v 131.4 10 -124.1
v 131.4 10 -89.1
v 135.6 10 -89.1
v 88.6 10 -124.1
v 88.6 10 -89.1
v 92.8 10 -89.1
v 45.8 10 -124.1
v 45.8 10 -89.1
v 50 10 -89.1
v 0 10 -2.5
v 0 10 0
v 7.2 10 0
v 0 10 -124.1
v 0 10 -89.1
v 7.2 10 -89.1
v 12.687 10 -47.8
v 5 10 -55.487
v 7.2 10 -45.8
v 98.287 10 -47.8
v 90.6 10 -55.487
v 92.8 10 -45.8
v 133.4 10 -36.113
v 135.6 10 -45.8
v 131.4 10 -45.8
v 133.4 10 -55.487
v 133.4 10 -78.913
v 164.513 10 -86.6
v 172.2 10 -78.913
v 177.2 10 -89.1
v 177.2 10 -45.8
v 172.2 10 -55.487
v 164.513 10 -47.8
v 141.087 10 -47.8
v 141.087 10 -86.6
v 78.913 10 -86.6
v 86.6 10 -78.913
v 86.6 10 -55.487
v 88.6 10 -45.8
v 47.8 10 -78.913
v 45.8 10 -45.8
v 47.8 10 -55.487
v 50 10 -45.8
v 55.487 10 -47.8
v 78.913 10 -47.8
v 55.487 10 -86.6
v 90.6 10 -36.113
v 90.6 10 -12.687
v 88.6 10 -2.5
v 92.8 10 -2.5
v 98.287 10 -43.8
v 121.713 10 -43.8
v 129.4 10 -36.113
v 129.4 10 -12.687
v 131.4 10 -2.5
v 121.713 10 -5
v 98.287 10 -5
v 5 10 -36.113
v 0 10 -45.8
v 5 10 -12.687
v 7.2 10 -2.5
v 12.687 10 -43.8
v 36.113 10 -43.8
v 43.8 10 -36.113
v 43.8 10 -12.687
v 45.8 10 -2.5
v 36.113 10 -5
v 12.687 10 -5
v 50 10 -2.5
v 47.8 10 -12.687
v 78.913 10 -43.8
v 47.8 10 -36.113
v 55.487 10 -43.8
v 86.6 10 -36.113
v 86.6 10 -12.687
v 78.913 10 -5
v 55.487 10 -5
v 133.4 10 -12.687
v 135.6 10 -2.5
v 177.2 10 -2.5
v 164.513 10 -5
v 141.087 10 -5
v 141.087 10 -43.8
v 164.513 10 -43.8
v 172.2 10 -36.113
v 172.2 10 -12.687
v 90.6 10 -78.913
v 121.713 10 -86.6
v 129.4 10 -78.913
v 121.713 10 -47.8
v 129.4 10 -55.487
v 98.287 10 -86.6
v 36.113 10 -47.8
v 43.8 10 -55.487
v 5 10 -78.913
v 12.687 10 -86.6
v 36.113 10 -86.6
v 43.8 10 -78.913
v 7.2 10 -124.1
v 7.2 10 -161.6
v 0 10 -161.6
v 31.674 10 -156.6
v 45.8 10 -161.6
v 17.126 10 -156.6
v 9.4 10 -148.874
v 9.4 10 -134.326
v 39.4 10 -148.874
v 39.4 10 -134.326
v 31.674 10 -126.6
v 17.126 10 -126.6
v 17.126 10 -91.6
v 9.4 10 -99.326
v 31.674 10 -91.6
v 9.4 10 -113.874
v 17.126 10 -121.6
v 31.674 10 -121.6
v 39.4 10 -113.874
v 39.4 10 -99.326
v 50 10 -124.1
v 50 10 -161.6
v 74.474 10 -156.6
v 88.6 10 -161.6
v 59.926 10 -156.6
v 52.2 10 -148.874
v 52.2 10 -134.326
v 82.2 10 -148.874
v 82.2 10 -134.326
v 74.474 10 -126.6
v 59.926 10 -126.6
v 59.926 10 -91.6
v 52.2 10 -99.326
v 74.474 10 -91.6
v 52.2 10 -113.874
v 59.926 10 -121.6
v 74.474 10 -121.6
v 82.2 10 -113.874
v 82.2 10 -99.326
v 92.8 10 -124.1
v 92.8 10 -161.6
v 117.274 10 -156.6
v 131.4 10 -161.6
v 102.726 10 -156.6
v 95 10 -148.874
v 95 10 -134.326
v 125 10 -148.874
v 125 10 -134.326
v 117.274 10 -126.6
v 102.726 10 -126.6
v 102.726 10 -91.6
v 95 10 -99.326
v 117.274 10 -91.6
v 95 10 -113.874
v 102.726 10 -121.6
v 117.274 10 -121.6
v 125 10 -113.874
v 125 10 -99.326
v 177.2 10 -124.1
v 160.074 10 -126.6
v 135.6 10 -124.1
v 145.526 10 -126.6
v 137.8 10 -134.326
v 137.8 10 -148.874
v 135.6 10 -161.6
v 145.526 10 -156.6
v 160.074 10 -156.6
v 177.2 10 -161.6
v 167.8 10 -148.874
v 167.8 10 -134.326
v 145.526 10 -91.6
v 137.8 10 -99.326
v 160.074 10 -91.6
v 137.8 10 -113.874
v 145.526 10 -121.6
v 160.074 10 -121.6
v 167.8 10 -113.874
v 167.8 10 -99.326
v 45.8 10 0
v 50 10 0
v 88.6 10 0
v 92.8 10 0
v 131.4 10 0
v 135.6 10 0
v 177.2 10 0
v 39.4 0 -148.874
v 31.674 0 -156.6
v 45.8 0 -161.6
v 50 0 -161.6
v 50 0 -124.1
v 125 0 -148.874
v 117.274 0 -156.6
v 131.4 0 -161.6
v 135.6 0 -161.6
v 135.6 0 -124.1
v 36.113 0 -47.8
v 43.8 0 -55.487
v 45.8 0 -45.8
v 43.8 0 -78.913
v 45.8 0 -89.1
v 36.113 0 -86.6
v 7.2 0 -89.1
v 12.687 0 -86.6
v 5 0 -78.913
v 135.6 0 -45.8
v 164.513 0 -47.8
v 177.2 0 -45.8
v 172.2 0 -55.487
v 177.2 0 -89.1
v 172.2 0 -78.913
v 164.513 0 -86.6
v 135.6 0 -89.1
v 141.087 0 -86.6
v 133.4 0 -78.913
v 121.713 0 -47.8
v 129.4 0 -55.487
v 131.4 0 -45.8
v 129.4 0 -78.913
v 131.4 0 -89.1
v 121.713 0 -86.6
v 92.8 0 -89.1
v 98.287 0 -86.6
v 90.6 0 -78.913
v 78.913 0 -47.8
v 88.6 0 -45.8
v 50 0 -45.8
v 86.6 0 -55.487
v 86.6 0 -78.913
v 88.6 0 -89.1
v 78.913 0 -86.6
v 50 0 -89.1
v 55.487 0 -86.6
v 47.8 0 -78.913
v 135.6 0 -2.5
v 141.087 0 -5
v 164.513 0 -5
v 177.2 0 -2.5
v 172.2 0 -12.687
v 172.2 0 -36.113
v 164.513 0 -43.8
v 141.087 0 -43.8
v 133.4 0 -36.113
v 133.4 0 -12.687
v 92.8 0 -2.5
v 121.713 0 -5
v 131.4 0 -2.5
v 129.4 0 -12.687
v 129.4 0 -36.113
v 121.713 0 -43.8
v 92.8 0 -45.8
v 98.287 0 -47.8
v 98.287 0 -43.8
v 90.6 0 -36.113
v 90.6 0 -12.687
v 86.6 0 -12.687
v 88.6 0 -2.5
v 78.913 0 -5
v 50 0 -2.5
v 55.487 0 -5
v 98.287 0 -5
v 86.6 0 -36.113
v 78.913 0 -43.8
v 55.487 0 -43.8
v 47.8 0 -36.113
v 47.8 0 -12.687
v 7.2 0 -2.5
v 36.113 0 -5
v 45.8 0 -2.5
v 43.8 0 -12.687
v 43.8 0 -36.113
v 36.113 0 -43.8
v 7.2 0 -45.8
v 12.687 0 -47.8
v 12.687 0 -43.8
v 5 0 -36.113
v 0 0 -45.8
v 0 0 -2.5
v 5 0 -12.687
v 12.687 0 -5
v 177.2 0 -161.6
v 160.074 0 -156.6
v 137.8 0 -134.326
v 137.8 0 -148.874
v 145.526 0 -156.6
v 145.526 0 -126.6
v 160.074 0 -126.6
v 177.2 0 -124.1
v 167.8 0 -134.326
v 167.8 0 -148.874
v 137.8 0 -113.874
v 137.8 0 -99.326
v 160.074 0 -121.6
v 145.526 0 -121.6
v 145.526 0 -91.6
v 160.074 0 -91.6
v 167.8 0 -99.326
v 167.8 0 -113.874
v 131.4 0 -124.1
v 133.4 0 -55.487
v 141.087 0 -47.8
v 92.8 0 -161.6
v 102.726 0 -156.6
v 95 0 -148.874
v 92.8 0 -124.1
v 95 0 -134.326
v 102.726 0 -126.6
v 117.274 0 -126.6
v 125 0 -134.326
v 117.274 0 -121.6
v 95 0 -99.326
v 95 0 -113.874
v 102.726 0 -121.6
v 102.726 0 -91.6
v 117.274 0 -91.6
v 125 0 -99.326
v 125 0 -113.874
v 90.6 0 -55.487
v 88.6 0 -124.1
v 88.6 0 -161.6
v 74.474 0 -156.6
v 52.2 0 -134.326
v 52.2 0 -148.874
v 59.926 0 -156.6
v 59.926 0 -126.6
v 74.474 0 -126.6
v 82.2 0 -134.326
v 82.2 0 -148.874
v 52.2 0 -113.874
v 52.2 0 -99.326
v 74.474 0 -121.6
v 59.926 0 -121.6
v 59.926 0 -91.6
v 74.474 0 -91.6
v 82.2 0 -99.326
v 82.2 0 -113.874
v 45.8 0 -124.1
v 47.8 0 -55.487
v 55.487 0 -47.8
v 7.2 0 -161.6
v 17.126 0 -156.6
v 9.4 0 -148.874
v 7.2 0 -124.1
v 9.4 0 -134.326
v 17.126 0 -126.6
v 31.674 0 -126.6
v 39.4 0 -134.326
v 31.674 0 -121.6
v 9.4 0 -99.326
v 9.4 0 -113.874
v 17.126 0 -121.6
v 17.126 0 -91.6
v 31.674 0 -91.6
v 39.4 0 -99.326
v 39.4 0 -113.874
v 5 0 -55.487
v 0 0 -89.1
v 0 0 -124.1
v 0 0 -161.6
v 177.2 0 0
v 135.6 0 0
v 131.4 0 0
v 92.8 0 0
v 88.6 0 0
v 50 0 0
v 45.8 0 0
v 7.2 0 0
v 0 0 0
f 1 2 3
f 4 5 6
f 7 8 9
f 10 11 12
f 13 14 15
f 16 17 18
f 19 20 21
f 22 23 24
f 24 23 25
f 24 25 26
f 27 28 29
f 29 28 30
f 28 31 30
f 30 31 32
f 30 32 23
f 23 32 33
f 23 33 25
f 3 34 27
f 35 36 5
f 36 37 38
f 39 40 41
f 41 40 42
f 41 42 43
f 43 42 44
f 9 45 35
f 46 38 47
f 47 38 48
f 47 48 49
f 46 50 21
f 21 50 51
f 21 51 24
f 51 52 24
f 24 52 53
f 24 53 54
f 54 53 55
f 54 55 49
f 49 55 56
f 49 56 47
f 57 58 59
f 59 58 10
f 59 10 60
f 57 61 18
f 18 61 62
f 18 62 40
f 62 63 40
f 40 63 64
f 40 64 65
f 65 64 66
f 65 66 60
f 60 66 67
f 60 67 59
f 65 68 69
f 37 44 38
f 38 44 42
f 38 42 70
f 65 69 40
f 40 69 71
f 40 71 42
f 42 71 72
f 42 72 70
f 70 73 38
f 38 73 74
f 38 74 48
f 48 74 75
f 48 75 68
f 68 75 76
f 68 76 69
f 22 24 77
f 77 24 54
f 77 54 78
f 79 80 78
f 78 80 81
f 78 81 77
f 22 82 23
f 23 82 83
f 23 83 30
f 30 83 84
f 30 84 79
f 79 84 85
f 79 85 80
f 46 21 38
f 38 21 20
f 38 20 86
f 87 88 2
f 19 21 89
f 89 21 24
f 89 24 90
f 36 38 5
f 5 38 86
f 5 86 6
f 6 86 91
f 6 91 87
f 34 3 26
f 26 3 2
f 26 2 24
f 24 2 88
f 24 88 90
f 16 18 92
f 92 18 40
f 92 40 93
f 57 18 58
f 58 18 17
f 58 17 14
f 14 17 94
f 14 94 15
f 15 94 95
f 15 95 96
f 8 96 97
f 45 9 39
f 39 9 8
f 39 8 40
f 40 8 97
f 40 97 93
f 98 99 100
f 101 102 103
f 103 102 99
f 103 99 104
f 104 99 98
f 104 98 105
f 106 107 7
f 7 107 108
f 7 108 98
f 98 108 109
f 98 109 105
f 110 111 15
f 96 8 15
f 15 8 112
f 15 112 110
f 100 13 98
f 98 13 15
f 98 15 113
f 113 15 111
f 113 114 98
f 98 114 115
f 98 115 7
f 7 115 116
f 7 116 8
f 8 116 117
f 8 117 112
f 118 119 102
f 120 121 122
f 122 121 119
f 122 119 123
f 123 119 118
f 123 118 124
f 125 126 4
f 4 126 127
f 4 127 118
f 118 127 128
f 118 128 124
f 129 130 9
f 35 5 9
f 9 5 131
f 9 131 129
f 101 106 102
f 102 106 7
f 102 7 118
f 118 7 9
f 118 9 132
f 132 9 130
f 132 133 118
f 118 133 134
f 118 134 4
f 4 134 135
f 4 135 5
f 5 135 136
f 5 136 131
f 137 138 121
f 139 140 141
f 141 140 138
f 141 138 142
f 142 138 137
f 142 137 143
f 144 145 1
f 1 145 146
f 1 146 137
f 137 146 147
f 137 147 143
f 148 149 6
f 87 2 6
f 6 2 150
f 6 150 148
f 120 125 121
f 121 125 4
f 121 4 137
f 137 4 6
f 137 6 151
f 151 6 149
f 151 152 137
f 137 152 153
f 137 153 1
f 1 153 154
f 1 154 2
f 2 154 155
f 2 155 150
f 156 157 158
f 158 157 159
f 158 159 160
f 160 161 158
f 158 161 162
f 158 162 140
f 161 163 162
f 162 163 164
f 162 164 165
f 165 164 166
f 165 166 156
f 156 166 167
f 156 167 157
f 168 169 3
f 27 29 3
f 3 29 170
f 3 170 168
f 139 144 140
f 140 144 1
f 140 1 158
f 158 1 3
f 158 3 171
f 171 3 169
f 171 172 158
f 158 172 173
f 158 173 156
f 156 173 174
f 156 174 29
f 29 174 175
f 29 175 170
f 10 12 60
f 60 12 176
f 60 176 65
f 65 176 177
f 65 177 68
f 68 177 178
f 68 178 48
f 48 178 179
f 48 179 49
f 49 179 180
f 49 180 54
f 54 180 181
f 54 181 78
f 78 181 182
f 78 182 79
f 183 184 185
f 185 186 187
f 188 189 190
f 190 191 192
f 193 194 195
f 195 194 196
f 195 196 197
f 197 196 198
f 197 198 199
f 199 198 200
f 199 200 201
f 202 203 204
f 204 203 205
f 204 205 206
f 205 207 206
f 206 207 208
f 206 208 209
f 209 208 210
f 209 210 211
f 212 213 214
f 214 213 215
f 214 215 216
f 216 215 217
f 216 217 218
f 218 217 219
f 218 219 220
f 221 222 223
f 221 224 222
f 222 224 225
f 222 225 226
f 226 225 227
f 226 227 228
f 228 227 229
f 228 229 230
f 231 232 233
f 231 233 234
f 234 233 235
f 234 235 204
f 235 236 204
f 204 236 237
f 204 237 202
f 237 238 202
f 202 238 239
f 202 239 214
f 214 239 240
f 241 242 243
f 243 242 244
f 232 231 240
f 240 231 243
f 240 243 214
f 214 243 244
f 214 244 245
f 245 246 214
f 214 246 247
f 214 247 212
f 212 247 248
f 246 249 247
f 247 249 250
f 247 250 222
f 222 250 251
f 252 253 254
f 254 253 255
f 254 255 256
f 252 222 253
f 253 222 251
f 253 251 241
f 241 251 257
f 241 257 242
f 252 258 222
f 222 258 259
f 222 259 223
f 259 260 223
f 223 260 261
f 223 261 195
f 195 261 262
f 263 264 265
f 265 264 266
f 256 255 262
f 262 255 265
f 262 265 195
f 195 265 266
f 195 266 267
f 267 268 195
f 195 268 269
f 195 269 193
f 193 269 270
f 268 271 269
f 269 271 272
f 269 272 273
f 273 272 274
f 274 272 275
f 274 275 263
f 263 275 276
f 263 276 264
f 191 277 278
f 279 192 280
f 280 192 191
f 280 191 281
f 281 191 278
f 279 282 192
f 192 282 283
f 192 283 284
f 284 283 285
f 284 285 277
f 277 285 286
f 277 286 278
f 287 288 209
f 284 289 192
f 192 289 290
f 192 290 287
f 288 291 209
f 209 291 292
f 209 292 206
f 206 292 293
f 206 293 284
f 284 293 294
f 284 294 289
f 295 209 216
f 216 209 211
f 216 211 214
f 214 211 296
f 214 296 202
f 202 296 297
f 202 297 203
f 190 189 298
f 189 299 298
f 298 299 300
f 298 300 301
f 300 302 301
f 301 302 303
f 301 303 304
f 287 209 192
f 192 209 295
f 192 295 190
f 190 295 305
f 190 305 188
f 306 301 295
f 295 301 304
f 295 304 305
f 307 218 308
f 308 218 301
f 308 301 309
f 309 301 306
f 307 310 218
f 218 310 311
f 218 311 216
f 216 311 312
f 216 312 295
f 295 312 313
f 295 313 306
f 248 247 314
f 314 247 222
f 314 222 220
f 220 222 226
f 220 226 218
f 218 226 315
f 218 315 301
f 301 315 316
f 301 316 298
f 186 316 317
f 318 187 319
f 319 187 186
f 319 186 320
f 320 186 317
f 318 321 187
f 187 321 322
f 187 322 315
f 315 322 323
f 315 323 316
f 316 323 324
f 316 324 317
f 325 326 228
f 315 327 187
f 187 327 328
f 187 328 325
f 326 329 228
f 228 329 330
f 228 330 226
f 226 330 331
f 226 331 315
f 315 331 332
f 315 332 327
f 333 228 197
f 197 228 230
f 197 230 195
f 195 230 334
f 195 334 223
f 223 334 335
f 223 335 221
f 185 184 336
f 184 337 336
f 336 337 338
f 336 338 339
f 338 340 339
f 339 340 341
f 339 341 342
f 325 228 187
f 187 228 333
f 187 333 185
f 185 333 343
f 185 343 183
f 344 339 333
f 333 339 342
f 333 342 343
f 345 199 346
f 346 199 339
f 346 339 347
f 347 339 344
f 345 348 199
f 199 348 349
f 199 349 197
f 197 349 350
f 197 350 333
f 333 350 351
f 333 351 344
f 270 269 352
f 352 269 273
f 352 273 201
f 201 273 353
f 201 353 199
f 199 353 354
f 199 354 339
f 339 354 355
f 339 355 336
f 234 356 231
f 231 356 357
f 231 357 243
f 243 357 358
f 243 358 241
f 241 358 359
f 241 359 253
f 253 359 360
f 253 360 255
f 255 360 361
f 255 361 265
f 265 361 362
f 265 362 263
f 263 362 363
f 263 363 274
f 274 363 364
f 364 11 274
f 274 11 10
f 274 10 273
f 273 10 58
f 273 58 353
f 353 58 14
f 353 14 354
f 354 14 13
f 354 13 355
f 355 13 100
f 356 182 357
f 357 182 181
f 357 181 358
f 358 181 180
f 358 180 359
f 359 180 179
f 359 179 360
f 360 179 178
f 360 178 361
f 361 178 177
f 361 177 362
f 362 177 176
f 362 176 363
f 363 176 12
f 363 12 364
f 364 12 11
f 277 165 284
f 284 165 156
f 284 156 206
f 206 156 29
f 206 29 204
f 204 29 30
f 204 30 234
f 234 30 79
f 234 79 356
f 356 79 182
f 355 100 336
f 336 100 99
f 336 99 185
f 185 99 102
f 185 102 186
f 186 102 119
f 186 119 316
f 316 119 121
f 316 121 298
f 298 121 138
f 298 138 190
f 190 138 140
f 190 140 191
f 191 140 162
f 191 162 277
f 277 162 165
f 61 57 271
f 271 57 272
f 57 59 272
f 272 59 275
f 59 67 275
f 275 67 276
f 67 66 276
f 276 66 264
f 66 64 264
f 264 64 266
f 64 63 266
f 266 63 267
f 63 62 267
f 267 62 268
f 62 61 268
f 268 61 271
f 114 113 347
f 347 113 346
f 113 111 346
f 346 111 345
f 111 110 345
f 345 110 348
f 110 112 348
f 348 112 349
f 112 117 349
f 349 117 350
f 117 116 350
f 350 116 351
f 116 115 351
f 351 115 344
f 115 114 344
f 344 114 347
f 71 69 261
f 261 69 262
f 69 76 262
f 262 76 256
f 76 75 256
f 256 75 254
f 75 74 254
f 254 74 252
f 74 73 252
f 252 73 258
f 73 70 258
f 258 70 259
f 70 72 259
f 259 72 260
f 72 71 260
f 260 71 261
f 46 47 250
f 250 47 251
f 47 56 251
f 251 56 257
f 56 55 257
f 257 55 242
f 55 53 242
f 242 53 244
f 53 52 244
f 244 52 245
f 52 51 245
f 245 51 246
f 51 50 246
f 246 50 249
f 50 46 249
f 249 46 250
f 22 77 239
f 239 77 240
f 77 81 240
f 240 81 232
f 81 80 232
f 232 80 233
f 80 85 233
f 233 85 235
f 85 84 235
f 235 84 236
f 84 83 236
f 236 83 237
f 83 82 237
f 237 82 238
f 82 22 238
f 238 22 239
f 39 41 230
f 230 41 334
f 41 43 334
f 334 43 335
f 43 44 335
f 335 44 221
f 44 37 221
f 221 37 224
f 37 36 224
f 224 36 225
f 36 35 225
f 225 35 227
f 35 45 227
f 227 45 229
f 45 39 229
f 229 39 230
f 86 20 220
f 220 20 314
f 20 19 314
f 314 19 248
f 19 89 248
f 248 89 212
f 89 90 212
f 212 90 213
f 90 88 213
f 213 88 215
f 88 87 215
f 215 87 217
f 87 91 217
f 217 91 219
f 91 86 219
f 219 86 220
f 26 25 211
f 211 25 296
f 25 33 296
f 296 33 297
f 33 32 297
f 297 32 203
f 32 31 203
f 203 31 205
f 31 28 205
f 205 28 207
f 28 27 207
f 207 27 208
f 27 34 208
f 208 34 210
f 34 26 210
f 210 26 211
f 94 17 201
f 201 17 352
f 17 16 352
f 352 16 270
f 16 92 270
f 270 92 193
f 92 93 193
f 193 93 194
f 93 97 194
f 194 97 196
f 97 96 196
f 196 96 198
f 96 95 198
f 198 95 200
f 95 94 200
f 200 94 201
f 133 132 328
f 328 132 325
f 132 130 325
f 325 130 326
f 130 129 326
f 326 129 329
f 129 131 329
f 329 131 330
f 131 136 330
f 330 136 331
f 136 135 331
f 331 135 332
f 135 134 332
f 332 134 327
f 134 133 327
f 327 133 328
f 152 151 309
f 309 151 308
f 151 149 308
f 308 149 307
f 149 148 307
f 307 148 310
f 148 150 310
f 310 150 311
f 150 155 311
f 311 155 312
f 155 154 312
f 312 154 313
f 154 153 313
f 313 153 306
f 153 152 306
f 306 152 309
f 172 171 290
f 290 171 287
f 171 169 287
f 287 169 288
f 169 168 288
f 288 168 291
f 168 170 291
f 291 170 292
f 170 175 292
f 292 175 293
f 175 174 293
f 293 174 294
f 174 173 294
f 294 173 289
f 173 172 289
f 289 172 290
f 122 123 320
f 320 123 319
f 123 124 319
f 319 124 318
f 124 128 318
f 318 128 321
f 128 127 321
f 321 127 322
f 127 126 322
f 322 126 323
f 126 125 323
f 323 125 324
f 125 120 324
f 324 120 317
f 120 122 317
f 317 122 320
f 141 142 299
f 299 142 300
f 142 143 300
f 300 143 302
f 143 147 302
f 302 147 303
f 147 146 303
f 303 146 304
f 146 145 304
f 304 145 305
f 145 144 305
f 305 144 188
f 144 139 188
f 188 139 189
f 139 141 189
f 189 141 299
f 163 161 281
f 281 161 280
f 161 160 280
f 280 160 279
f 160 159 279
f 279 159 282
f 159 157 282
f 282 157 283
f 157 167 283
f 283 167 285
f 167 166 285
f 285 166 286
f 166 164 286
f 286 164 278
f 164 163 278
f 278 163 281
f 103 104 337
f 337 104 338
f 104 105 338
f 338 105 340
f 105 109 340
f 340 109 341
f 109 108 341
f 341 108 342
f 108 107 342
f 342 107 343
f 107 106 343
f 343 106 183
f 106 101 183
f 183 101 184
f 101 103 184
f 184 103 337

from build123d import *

# Parameters (mm, degrees)
SKETCH1_W           = 177.2
SKETCH1_H           = 161.6
BOSS_EXTRUDE1_DEPTH = 10


with BuildPart() as part:
    # Sketch1 → Boss-Extrude1 (new body)
    with BuildSketch(Plane(origin=(0, 0, 0), x_dir=(1, 0, 0), z_dir=(0, 1, 0))):
        with Locations((88.6, 80.8)):
            Rectangle(SKETCH1_W, SKETCH1_H)
        Polygon((5, 36.112698372), (5, 12.687301628), (12.687301628, 5), (36.112698372, 5), (43.8, 12.687301628), (43.8, 36.112698372), (36.112698372, 43.8), (12.687301628, 43.8), align=None, mode=Mode.SUBTRACT)
        Polygon((55.487301628, 43.8), (47.8, 36.112698372), (47.8, 12.687301628), (55.487301628, 5), (78.912698372, 5), (86.6, 12.687301628), (86.6, 36.112698372), (78.912698372, 43.8), align=None, mode=Mode.SUBTRACT)
        Polygon((98.287301628, 43.8), (90.6, 36.112698372), (90.6, 12.687301628), (98.287301628, 5), (121.712698372, 5), (129.4, 12.687301628), (129.4, 36.112698372), (121.712698372, 43.8), align=None, mode=Mode.SUBTRACT)
        Polygon((141.087301628, 43.8), (133.4, 36.112698372), (133.4, 12.687301628), (141.087301628, 5), (164.512698372, 5), (172.2, 12.687301628), (172.2, 36.112698372), (164.512698372, 43.8), align=None, mode=Mode.SUBTRACT)
        Polygon((55.487301628, 86.6), (47.8, 78.912698372), (47.8, 55.487301628), (55.487301628, 47.8), (78.912698372, 47.8), (86.6, 55.487301628), (86.6, 78.912698372), (78.912698372, 86.6), align=None, mode=Mode.SUBTRACT)
        Polygon((98.287301628, 86.6), (90.6, 78.912698372), (90.6, 55.487301628), (98.287301628, 47.8), (121.712698372, 47.8), (129.4, 55.487301628), (129.4, 78.912698372), (121.712698372, 86.6), align=None, mode=Mode.SUBTRACT)
        Polygon((141.087301628, 86.6), (133.4, 78.912698372), (133.4, 55.487301628), (141.087301628, 47.8), (164.512698372, 47.8), (172.2, 55.487301628), (172.2, 78.912698372), (164.512698372, 86.6), align=None, mode=Mode.SUBTRACT)
        Polygon((12.687301628, 86.6), (5, 78.912698372), (5, 55.487301628), (12.687301628, 47.8), (36.112698372, 47.8), (43.8, 55.487301628), (43.8, 78.912698372), (36.112698372, 86.6), align=None, mode=Mode.SUBTRACT)
        Polygon((9.4, 113.873863607), (9.4, 99.326136393), (17.126136393, 91.6), (31.673863607, 91.6), (39.4, 99.326136393), (39.4, 113.873863607), (31.673863607, 121.6), (17.126136393, 121.6), align=None, mode=Mode.SUBTRACT)
        Polygon((52.2, 113.873863607), (52.2, 99.326136393), (59.926136393, 91.6), (74.473863607, 91.6), (82.2, 99.326136393), (82.2, 113.873863607), (74.473863607, 121.6), (59.926136393, 121.6), align=None, mode=Mode.SUBTRACT)
        Polygon((95, 113.873863607), (95, 99.326136393), (102.726136393, 91.6), (117.273863607, 91.6), (125, 99.326136393), (125, 113.873863607), (117.273863607, 121.6), (102.726136393, 121.6), align=None, mode=Mode.SUBTRACT)
        Polygon((137.8, 113.873863607), (137.8, 99.326136393), (145.526136393, 91.6), (160.073863607, 91.6), (167.8, 99.326136393), (167.8, 113.873863607), (160.073863607, 121.6), (145.526136393, 121.6), align=None, mode=Mode.SUBTRACT)
        Polygon((52.2, 148.873863607), (52.2, 134.326136393), (59.926136393, 126.6), (74.473863607, 126.6), (82.2, 134.326136393), (82.2, 148.873863607), (74.473863607, 156.6), (59.926136393, 156.6), align=None, mode=Mode.SUBTRACT)
        Polygon((95, 148.873863607), (95, 134.326136393), (102.726136393, 126.6), (117.273863607, 126.6), (125, 134.326136393), (125, 148.873863607), (117.273863607, 156.6), (102.726136393, 156.6), align=None, mode=Mode.SUBTRACT)
        Polygon((137.8, 148.873863607), (137.8, 134.326136393), (145.526136393, 126.6), (160.073863607, 126.6), (167.8, 134.326136393), (167.8, 148.873863607), (160.073863607, 156.6), (145.526136393, 156.6), align=None, mode=Mode.SUBTRACT)
        Polygon((9.4, 148.873863607), (9.4, 134.326136393), (17.126136393, 126.6), (31.673863607, 126.6), (39.4, 134.326136393), (39.4, 148.873863607), (31.673863607, 156.6), (17.126136393, 156.6), align=None, mode=Mode.SUBTRACT)
    extrude(amount=BOSS_EXTRUDE1_DEPTH)


solid = part.part
